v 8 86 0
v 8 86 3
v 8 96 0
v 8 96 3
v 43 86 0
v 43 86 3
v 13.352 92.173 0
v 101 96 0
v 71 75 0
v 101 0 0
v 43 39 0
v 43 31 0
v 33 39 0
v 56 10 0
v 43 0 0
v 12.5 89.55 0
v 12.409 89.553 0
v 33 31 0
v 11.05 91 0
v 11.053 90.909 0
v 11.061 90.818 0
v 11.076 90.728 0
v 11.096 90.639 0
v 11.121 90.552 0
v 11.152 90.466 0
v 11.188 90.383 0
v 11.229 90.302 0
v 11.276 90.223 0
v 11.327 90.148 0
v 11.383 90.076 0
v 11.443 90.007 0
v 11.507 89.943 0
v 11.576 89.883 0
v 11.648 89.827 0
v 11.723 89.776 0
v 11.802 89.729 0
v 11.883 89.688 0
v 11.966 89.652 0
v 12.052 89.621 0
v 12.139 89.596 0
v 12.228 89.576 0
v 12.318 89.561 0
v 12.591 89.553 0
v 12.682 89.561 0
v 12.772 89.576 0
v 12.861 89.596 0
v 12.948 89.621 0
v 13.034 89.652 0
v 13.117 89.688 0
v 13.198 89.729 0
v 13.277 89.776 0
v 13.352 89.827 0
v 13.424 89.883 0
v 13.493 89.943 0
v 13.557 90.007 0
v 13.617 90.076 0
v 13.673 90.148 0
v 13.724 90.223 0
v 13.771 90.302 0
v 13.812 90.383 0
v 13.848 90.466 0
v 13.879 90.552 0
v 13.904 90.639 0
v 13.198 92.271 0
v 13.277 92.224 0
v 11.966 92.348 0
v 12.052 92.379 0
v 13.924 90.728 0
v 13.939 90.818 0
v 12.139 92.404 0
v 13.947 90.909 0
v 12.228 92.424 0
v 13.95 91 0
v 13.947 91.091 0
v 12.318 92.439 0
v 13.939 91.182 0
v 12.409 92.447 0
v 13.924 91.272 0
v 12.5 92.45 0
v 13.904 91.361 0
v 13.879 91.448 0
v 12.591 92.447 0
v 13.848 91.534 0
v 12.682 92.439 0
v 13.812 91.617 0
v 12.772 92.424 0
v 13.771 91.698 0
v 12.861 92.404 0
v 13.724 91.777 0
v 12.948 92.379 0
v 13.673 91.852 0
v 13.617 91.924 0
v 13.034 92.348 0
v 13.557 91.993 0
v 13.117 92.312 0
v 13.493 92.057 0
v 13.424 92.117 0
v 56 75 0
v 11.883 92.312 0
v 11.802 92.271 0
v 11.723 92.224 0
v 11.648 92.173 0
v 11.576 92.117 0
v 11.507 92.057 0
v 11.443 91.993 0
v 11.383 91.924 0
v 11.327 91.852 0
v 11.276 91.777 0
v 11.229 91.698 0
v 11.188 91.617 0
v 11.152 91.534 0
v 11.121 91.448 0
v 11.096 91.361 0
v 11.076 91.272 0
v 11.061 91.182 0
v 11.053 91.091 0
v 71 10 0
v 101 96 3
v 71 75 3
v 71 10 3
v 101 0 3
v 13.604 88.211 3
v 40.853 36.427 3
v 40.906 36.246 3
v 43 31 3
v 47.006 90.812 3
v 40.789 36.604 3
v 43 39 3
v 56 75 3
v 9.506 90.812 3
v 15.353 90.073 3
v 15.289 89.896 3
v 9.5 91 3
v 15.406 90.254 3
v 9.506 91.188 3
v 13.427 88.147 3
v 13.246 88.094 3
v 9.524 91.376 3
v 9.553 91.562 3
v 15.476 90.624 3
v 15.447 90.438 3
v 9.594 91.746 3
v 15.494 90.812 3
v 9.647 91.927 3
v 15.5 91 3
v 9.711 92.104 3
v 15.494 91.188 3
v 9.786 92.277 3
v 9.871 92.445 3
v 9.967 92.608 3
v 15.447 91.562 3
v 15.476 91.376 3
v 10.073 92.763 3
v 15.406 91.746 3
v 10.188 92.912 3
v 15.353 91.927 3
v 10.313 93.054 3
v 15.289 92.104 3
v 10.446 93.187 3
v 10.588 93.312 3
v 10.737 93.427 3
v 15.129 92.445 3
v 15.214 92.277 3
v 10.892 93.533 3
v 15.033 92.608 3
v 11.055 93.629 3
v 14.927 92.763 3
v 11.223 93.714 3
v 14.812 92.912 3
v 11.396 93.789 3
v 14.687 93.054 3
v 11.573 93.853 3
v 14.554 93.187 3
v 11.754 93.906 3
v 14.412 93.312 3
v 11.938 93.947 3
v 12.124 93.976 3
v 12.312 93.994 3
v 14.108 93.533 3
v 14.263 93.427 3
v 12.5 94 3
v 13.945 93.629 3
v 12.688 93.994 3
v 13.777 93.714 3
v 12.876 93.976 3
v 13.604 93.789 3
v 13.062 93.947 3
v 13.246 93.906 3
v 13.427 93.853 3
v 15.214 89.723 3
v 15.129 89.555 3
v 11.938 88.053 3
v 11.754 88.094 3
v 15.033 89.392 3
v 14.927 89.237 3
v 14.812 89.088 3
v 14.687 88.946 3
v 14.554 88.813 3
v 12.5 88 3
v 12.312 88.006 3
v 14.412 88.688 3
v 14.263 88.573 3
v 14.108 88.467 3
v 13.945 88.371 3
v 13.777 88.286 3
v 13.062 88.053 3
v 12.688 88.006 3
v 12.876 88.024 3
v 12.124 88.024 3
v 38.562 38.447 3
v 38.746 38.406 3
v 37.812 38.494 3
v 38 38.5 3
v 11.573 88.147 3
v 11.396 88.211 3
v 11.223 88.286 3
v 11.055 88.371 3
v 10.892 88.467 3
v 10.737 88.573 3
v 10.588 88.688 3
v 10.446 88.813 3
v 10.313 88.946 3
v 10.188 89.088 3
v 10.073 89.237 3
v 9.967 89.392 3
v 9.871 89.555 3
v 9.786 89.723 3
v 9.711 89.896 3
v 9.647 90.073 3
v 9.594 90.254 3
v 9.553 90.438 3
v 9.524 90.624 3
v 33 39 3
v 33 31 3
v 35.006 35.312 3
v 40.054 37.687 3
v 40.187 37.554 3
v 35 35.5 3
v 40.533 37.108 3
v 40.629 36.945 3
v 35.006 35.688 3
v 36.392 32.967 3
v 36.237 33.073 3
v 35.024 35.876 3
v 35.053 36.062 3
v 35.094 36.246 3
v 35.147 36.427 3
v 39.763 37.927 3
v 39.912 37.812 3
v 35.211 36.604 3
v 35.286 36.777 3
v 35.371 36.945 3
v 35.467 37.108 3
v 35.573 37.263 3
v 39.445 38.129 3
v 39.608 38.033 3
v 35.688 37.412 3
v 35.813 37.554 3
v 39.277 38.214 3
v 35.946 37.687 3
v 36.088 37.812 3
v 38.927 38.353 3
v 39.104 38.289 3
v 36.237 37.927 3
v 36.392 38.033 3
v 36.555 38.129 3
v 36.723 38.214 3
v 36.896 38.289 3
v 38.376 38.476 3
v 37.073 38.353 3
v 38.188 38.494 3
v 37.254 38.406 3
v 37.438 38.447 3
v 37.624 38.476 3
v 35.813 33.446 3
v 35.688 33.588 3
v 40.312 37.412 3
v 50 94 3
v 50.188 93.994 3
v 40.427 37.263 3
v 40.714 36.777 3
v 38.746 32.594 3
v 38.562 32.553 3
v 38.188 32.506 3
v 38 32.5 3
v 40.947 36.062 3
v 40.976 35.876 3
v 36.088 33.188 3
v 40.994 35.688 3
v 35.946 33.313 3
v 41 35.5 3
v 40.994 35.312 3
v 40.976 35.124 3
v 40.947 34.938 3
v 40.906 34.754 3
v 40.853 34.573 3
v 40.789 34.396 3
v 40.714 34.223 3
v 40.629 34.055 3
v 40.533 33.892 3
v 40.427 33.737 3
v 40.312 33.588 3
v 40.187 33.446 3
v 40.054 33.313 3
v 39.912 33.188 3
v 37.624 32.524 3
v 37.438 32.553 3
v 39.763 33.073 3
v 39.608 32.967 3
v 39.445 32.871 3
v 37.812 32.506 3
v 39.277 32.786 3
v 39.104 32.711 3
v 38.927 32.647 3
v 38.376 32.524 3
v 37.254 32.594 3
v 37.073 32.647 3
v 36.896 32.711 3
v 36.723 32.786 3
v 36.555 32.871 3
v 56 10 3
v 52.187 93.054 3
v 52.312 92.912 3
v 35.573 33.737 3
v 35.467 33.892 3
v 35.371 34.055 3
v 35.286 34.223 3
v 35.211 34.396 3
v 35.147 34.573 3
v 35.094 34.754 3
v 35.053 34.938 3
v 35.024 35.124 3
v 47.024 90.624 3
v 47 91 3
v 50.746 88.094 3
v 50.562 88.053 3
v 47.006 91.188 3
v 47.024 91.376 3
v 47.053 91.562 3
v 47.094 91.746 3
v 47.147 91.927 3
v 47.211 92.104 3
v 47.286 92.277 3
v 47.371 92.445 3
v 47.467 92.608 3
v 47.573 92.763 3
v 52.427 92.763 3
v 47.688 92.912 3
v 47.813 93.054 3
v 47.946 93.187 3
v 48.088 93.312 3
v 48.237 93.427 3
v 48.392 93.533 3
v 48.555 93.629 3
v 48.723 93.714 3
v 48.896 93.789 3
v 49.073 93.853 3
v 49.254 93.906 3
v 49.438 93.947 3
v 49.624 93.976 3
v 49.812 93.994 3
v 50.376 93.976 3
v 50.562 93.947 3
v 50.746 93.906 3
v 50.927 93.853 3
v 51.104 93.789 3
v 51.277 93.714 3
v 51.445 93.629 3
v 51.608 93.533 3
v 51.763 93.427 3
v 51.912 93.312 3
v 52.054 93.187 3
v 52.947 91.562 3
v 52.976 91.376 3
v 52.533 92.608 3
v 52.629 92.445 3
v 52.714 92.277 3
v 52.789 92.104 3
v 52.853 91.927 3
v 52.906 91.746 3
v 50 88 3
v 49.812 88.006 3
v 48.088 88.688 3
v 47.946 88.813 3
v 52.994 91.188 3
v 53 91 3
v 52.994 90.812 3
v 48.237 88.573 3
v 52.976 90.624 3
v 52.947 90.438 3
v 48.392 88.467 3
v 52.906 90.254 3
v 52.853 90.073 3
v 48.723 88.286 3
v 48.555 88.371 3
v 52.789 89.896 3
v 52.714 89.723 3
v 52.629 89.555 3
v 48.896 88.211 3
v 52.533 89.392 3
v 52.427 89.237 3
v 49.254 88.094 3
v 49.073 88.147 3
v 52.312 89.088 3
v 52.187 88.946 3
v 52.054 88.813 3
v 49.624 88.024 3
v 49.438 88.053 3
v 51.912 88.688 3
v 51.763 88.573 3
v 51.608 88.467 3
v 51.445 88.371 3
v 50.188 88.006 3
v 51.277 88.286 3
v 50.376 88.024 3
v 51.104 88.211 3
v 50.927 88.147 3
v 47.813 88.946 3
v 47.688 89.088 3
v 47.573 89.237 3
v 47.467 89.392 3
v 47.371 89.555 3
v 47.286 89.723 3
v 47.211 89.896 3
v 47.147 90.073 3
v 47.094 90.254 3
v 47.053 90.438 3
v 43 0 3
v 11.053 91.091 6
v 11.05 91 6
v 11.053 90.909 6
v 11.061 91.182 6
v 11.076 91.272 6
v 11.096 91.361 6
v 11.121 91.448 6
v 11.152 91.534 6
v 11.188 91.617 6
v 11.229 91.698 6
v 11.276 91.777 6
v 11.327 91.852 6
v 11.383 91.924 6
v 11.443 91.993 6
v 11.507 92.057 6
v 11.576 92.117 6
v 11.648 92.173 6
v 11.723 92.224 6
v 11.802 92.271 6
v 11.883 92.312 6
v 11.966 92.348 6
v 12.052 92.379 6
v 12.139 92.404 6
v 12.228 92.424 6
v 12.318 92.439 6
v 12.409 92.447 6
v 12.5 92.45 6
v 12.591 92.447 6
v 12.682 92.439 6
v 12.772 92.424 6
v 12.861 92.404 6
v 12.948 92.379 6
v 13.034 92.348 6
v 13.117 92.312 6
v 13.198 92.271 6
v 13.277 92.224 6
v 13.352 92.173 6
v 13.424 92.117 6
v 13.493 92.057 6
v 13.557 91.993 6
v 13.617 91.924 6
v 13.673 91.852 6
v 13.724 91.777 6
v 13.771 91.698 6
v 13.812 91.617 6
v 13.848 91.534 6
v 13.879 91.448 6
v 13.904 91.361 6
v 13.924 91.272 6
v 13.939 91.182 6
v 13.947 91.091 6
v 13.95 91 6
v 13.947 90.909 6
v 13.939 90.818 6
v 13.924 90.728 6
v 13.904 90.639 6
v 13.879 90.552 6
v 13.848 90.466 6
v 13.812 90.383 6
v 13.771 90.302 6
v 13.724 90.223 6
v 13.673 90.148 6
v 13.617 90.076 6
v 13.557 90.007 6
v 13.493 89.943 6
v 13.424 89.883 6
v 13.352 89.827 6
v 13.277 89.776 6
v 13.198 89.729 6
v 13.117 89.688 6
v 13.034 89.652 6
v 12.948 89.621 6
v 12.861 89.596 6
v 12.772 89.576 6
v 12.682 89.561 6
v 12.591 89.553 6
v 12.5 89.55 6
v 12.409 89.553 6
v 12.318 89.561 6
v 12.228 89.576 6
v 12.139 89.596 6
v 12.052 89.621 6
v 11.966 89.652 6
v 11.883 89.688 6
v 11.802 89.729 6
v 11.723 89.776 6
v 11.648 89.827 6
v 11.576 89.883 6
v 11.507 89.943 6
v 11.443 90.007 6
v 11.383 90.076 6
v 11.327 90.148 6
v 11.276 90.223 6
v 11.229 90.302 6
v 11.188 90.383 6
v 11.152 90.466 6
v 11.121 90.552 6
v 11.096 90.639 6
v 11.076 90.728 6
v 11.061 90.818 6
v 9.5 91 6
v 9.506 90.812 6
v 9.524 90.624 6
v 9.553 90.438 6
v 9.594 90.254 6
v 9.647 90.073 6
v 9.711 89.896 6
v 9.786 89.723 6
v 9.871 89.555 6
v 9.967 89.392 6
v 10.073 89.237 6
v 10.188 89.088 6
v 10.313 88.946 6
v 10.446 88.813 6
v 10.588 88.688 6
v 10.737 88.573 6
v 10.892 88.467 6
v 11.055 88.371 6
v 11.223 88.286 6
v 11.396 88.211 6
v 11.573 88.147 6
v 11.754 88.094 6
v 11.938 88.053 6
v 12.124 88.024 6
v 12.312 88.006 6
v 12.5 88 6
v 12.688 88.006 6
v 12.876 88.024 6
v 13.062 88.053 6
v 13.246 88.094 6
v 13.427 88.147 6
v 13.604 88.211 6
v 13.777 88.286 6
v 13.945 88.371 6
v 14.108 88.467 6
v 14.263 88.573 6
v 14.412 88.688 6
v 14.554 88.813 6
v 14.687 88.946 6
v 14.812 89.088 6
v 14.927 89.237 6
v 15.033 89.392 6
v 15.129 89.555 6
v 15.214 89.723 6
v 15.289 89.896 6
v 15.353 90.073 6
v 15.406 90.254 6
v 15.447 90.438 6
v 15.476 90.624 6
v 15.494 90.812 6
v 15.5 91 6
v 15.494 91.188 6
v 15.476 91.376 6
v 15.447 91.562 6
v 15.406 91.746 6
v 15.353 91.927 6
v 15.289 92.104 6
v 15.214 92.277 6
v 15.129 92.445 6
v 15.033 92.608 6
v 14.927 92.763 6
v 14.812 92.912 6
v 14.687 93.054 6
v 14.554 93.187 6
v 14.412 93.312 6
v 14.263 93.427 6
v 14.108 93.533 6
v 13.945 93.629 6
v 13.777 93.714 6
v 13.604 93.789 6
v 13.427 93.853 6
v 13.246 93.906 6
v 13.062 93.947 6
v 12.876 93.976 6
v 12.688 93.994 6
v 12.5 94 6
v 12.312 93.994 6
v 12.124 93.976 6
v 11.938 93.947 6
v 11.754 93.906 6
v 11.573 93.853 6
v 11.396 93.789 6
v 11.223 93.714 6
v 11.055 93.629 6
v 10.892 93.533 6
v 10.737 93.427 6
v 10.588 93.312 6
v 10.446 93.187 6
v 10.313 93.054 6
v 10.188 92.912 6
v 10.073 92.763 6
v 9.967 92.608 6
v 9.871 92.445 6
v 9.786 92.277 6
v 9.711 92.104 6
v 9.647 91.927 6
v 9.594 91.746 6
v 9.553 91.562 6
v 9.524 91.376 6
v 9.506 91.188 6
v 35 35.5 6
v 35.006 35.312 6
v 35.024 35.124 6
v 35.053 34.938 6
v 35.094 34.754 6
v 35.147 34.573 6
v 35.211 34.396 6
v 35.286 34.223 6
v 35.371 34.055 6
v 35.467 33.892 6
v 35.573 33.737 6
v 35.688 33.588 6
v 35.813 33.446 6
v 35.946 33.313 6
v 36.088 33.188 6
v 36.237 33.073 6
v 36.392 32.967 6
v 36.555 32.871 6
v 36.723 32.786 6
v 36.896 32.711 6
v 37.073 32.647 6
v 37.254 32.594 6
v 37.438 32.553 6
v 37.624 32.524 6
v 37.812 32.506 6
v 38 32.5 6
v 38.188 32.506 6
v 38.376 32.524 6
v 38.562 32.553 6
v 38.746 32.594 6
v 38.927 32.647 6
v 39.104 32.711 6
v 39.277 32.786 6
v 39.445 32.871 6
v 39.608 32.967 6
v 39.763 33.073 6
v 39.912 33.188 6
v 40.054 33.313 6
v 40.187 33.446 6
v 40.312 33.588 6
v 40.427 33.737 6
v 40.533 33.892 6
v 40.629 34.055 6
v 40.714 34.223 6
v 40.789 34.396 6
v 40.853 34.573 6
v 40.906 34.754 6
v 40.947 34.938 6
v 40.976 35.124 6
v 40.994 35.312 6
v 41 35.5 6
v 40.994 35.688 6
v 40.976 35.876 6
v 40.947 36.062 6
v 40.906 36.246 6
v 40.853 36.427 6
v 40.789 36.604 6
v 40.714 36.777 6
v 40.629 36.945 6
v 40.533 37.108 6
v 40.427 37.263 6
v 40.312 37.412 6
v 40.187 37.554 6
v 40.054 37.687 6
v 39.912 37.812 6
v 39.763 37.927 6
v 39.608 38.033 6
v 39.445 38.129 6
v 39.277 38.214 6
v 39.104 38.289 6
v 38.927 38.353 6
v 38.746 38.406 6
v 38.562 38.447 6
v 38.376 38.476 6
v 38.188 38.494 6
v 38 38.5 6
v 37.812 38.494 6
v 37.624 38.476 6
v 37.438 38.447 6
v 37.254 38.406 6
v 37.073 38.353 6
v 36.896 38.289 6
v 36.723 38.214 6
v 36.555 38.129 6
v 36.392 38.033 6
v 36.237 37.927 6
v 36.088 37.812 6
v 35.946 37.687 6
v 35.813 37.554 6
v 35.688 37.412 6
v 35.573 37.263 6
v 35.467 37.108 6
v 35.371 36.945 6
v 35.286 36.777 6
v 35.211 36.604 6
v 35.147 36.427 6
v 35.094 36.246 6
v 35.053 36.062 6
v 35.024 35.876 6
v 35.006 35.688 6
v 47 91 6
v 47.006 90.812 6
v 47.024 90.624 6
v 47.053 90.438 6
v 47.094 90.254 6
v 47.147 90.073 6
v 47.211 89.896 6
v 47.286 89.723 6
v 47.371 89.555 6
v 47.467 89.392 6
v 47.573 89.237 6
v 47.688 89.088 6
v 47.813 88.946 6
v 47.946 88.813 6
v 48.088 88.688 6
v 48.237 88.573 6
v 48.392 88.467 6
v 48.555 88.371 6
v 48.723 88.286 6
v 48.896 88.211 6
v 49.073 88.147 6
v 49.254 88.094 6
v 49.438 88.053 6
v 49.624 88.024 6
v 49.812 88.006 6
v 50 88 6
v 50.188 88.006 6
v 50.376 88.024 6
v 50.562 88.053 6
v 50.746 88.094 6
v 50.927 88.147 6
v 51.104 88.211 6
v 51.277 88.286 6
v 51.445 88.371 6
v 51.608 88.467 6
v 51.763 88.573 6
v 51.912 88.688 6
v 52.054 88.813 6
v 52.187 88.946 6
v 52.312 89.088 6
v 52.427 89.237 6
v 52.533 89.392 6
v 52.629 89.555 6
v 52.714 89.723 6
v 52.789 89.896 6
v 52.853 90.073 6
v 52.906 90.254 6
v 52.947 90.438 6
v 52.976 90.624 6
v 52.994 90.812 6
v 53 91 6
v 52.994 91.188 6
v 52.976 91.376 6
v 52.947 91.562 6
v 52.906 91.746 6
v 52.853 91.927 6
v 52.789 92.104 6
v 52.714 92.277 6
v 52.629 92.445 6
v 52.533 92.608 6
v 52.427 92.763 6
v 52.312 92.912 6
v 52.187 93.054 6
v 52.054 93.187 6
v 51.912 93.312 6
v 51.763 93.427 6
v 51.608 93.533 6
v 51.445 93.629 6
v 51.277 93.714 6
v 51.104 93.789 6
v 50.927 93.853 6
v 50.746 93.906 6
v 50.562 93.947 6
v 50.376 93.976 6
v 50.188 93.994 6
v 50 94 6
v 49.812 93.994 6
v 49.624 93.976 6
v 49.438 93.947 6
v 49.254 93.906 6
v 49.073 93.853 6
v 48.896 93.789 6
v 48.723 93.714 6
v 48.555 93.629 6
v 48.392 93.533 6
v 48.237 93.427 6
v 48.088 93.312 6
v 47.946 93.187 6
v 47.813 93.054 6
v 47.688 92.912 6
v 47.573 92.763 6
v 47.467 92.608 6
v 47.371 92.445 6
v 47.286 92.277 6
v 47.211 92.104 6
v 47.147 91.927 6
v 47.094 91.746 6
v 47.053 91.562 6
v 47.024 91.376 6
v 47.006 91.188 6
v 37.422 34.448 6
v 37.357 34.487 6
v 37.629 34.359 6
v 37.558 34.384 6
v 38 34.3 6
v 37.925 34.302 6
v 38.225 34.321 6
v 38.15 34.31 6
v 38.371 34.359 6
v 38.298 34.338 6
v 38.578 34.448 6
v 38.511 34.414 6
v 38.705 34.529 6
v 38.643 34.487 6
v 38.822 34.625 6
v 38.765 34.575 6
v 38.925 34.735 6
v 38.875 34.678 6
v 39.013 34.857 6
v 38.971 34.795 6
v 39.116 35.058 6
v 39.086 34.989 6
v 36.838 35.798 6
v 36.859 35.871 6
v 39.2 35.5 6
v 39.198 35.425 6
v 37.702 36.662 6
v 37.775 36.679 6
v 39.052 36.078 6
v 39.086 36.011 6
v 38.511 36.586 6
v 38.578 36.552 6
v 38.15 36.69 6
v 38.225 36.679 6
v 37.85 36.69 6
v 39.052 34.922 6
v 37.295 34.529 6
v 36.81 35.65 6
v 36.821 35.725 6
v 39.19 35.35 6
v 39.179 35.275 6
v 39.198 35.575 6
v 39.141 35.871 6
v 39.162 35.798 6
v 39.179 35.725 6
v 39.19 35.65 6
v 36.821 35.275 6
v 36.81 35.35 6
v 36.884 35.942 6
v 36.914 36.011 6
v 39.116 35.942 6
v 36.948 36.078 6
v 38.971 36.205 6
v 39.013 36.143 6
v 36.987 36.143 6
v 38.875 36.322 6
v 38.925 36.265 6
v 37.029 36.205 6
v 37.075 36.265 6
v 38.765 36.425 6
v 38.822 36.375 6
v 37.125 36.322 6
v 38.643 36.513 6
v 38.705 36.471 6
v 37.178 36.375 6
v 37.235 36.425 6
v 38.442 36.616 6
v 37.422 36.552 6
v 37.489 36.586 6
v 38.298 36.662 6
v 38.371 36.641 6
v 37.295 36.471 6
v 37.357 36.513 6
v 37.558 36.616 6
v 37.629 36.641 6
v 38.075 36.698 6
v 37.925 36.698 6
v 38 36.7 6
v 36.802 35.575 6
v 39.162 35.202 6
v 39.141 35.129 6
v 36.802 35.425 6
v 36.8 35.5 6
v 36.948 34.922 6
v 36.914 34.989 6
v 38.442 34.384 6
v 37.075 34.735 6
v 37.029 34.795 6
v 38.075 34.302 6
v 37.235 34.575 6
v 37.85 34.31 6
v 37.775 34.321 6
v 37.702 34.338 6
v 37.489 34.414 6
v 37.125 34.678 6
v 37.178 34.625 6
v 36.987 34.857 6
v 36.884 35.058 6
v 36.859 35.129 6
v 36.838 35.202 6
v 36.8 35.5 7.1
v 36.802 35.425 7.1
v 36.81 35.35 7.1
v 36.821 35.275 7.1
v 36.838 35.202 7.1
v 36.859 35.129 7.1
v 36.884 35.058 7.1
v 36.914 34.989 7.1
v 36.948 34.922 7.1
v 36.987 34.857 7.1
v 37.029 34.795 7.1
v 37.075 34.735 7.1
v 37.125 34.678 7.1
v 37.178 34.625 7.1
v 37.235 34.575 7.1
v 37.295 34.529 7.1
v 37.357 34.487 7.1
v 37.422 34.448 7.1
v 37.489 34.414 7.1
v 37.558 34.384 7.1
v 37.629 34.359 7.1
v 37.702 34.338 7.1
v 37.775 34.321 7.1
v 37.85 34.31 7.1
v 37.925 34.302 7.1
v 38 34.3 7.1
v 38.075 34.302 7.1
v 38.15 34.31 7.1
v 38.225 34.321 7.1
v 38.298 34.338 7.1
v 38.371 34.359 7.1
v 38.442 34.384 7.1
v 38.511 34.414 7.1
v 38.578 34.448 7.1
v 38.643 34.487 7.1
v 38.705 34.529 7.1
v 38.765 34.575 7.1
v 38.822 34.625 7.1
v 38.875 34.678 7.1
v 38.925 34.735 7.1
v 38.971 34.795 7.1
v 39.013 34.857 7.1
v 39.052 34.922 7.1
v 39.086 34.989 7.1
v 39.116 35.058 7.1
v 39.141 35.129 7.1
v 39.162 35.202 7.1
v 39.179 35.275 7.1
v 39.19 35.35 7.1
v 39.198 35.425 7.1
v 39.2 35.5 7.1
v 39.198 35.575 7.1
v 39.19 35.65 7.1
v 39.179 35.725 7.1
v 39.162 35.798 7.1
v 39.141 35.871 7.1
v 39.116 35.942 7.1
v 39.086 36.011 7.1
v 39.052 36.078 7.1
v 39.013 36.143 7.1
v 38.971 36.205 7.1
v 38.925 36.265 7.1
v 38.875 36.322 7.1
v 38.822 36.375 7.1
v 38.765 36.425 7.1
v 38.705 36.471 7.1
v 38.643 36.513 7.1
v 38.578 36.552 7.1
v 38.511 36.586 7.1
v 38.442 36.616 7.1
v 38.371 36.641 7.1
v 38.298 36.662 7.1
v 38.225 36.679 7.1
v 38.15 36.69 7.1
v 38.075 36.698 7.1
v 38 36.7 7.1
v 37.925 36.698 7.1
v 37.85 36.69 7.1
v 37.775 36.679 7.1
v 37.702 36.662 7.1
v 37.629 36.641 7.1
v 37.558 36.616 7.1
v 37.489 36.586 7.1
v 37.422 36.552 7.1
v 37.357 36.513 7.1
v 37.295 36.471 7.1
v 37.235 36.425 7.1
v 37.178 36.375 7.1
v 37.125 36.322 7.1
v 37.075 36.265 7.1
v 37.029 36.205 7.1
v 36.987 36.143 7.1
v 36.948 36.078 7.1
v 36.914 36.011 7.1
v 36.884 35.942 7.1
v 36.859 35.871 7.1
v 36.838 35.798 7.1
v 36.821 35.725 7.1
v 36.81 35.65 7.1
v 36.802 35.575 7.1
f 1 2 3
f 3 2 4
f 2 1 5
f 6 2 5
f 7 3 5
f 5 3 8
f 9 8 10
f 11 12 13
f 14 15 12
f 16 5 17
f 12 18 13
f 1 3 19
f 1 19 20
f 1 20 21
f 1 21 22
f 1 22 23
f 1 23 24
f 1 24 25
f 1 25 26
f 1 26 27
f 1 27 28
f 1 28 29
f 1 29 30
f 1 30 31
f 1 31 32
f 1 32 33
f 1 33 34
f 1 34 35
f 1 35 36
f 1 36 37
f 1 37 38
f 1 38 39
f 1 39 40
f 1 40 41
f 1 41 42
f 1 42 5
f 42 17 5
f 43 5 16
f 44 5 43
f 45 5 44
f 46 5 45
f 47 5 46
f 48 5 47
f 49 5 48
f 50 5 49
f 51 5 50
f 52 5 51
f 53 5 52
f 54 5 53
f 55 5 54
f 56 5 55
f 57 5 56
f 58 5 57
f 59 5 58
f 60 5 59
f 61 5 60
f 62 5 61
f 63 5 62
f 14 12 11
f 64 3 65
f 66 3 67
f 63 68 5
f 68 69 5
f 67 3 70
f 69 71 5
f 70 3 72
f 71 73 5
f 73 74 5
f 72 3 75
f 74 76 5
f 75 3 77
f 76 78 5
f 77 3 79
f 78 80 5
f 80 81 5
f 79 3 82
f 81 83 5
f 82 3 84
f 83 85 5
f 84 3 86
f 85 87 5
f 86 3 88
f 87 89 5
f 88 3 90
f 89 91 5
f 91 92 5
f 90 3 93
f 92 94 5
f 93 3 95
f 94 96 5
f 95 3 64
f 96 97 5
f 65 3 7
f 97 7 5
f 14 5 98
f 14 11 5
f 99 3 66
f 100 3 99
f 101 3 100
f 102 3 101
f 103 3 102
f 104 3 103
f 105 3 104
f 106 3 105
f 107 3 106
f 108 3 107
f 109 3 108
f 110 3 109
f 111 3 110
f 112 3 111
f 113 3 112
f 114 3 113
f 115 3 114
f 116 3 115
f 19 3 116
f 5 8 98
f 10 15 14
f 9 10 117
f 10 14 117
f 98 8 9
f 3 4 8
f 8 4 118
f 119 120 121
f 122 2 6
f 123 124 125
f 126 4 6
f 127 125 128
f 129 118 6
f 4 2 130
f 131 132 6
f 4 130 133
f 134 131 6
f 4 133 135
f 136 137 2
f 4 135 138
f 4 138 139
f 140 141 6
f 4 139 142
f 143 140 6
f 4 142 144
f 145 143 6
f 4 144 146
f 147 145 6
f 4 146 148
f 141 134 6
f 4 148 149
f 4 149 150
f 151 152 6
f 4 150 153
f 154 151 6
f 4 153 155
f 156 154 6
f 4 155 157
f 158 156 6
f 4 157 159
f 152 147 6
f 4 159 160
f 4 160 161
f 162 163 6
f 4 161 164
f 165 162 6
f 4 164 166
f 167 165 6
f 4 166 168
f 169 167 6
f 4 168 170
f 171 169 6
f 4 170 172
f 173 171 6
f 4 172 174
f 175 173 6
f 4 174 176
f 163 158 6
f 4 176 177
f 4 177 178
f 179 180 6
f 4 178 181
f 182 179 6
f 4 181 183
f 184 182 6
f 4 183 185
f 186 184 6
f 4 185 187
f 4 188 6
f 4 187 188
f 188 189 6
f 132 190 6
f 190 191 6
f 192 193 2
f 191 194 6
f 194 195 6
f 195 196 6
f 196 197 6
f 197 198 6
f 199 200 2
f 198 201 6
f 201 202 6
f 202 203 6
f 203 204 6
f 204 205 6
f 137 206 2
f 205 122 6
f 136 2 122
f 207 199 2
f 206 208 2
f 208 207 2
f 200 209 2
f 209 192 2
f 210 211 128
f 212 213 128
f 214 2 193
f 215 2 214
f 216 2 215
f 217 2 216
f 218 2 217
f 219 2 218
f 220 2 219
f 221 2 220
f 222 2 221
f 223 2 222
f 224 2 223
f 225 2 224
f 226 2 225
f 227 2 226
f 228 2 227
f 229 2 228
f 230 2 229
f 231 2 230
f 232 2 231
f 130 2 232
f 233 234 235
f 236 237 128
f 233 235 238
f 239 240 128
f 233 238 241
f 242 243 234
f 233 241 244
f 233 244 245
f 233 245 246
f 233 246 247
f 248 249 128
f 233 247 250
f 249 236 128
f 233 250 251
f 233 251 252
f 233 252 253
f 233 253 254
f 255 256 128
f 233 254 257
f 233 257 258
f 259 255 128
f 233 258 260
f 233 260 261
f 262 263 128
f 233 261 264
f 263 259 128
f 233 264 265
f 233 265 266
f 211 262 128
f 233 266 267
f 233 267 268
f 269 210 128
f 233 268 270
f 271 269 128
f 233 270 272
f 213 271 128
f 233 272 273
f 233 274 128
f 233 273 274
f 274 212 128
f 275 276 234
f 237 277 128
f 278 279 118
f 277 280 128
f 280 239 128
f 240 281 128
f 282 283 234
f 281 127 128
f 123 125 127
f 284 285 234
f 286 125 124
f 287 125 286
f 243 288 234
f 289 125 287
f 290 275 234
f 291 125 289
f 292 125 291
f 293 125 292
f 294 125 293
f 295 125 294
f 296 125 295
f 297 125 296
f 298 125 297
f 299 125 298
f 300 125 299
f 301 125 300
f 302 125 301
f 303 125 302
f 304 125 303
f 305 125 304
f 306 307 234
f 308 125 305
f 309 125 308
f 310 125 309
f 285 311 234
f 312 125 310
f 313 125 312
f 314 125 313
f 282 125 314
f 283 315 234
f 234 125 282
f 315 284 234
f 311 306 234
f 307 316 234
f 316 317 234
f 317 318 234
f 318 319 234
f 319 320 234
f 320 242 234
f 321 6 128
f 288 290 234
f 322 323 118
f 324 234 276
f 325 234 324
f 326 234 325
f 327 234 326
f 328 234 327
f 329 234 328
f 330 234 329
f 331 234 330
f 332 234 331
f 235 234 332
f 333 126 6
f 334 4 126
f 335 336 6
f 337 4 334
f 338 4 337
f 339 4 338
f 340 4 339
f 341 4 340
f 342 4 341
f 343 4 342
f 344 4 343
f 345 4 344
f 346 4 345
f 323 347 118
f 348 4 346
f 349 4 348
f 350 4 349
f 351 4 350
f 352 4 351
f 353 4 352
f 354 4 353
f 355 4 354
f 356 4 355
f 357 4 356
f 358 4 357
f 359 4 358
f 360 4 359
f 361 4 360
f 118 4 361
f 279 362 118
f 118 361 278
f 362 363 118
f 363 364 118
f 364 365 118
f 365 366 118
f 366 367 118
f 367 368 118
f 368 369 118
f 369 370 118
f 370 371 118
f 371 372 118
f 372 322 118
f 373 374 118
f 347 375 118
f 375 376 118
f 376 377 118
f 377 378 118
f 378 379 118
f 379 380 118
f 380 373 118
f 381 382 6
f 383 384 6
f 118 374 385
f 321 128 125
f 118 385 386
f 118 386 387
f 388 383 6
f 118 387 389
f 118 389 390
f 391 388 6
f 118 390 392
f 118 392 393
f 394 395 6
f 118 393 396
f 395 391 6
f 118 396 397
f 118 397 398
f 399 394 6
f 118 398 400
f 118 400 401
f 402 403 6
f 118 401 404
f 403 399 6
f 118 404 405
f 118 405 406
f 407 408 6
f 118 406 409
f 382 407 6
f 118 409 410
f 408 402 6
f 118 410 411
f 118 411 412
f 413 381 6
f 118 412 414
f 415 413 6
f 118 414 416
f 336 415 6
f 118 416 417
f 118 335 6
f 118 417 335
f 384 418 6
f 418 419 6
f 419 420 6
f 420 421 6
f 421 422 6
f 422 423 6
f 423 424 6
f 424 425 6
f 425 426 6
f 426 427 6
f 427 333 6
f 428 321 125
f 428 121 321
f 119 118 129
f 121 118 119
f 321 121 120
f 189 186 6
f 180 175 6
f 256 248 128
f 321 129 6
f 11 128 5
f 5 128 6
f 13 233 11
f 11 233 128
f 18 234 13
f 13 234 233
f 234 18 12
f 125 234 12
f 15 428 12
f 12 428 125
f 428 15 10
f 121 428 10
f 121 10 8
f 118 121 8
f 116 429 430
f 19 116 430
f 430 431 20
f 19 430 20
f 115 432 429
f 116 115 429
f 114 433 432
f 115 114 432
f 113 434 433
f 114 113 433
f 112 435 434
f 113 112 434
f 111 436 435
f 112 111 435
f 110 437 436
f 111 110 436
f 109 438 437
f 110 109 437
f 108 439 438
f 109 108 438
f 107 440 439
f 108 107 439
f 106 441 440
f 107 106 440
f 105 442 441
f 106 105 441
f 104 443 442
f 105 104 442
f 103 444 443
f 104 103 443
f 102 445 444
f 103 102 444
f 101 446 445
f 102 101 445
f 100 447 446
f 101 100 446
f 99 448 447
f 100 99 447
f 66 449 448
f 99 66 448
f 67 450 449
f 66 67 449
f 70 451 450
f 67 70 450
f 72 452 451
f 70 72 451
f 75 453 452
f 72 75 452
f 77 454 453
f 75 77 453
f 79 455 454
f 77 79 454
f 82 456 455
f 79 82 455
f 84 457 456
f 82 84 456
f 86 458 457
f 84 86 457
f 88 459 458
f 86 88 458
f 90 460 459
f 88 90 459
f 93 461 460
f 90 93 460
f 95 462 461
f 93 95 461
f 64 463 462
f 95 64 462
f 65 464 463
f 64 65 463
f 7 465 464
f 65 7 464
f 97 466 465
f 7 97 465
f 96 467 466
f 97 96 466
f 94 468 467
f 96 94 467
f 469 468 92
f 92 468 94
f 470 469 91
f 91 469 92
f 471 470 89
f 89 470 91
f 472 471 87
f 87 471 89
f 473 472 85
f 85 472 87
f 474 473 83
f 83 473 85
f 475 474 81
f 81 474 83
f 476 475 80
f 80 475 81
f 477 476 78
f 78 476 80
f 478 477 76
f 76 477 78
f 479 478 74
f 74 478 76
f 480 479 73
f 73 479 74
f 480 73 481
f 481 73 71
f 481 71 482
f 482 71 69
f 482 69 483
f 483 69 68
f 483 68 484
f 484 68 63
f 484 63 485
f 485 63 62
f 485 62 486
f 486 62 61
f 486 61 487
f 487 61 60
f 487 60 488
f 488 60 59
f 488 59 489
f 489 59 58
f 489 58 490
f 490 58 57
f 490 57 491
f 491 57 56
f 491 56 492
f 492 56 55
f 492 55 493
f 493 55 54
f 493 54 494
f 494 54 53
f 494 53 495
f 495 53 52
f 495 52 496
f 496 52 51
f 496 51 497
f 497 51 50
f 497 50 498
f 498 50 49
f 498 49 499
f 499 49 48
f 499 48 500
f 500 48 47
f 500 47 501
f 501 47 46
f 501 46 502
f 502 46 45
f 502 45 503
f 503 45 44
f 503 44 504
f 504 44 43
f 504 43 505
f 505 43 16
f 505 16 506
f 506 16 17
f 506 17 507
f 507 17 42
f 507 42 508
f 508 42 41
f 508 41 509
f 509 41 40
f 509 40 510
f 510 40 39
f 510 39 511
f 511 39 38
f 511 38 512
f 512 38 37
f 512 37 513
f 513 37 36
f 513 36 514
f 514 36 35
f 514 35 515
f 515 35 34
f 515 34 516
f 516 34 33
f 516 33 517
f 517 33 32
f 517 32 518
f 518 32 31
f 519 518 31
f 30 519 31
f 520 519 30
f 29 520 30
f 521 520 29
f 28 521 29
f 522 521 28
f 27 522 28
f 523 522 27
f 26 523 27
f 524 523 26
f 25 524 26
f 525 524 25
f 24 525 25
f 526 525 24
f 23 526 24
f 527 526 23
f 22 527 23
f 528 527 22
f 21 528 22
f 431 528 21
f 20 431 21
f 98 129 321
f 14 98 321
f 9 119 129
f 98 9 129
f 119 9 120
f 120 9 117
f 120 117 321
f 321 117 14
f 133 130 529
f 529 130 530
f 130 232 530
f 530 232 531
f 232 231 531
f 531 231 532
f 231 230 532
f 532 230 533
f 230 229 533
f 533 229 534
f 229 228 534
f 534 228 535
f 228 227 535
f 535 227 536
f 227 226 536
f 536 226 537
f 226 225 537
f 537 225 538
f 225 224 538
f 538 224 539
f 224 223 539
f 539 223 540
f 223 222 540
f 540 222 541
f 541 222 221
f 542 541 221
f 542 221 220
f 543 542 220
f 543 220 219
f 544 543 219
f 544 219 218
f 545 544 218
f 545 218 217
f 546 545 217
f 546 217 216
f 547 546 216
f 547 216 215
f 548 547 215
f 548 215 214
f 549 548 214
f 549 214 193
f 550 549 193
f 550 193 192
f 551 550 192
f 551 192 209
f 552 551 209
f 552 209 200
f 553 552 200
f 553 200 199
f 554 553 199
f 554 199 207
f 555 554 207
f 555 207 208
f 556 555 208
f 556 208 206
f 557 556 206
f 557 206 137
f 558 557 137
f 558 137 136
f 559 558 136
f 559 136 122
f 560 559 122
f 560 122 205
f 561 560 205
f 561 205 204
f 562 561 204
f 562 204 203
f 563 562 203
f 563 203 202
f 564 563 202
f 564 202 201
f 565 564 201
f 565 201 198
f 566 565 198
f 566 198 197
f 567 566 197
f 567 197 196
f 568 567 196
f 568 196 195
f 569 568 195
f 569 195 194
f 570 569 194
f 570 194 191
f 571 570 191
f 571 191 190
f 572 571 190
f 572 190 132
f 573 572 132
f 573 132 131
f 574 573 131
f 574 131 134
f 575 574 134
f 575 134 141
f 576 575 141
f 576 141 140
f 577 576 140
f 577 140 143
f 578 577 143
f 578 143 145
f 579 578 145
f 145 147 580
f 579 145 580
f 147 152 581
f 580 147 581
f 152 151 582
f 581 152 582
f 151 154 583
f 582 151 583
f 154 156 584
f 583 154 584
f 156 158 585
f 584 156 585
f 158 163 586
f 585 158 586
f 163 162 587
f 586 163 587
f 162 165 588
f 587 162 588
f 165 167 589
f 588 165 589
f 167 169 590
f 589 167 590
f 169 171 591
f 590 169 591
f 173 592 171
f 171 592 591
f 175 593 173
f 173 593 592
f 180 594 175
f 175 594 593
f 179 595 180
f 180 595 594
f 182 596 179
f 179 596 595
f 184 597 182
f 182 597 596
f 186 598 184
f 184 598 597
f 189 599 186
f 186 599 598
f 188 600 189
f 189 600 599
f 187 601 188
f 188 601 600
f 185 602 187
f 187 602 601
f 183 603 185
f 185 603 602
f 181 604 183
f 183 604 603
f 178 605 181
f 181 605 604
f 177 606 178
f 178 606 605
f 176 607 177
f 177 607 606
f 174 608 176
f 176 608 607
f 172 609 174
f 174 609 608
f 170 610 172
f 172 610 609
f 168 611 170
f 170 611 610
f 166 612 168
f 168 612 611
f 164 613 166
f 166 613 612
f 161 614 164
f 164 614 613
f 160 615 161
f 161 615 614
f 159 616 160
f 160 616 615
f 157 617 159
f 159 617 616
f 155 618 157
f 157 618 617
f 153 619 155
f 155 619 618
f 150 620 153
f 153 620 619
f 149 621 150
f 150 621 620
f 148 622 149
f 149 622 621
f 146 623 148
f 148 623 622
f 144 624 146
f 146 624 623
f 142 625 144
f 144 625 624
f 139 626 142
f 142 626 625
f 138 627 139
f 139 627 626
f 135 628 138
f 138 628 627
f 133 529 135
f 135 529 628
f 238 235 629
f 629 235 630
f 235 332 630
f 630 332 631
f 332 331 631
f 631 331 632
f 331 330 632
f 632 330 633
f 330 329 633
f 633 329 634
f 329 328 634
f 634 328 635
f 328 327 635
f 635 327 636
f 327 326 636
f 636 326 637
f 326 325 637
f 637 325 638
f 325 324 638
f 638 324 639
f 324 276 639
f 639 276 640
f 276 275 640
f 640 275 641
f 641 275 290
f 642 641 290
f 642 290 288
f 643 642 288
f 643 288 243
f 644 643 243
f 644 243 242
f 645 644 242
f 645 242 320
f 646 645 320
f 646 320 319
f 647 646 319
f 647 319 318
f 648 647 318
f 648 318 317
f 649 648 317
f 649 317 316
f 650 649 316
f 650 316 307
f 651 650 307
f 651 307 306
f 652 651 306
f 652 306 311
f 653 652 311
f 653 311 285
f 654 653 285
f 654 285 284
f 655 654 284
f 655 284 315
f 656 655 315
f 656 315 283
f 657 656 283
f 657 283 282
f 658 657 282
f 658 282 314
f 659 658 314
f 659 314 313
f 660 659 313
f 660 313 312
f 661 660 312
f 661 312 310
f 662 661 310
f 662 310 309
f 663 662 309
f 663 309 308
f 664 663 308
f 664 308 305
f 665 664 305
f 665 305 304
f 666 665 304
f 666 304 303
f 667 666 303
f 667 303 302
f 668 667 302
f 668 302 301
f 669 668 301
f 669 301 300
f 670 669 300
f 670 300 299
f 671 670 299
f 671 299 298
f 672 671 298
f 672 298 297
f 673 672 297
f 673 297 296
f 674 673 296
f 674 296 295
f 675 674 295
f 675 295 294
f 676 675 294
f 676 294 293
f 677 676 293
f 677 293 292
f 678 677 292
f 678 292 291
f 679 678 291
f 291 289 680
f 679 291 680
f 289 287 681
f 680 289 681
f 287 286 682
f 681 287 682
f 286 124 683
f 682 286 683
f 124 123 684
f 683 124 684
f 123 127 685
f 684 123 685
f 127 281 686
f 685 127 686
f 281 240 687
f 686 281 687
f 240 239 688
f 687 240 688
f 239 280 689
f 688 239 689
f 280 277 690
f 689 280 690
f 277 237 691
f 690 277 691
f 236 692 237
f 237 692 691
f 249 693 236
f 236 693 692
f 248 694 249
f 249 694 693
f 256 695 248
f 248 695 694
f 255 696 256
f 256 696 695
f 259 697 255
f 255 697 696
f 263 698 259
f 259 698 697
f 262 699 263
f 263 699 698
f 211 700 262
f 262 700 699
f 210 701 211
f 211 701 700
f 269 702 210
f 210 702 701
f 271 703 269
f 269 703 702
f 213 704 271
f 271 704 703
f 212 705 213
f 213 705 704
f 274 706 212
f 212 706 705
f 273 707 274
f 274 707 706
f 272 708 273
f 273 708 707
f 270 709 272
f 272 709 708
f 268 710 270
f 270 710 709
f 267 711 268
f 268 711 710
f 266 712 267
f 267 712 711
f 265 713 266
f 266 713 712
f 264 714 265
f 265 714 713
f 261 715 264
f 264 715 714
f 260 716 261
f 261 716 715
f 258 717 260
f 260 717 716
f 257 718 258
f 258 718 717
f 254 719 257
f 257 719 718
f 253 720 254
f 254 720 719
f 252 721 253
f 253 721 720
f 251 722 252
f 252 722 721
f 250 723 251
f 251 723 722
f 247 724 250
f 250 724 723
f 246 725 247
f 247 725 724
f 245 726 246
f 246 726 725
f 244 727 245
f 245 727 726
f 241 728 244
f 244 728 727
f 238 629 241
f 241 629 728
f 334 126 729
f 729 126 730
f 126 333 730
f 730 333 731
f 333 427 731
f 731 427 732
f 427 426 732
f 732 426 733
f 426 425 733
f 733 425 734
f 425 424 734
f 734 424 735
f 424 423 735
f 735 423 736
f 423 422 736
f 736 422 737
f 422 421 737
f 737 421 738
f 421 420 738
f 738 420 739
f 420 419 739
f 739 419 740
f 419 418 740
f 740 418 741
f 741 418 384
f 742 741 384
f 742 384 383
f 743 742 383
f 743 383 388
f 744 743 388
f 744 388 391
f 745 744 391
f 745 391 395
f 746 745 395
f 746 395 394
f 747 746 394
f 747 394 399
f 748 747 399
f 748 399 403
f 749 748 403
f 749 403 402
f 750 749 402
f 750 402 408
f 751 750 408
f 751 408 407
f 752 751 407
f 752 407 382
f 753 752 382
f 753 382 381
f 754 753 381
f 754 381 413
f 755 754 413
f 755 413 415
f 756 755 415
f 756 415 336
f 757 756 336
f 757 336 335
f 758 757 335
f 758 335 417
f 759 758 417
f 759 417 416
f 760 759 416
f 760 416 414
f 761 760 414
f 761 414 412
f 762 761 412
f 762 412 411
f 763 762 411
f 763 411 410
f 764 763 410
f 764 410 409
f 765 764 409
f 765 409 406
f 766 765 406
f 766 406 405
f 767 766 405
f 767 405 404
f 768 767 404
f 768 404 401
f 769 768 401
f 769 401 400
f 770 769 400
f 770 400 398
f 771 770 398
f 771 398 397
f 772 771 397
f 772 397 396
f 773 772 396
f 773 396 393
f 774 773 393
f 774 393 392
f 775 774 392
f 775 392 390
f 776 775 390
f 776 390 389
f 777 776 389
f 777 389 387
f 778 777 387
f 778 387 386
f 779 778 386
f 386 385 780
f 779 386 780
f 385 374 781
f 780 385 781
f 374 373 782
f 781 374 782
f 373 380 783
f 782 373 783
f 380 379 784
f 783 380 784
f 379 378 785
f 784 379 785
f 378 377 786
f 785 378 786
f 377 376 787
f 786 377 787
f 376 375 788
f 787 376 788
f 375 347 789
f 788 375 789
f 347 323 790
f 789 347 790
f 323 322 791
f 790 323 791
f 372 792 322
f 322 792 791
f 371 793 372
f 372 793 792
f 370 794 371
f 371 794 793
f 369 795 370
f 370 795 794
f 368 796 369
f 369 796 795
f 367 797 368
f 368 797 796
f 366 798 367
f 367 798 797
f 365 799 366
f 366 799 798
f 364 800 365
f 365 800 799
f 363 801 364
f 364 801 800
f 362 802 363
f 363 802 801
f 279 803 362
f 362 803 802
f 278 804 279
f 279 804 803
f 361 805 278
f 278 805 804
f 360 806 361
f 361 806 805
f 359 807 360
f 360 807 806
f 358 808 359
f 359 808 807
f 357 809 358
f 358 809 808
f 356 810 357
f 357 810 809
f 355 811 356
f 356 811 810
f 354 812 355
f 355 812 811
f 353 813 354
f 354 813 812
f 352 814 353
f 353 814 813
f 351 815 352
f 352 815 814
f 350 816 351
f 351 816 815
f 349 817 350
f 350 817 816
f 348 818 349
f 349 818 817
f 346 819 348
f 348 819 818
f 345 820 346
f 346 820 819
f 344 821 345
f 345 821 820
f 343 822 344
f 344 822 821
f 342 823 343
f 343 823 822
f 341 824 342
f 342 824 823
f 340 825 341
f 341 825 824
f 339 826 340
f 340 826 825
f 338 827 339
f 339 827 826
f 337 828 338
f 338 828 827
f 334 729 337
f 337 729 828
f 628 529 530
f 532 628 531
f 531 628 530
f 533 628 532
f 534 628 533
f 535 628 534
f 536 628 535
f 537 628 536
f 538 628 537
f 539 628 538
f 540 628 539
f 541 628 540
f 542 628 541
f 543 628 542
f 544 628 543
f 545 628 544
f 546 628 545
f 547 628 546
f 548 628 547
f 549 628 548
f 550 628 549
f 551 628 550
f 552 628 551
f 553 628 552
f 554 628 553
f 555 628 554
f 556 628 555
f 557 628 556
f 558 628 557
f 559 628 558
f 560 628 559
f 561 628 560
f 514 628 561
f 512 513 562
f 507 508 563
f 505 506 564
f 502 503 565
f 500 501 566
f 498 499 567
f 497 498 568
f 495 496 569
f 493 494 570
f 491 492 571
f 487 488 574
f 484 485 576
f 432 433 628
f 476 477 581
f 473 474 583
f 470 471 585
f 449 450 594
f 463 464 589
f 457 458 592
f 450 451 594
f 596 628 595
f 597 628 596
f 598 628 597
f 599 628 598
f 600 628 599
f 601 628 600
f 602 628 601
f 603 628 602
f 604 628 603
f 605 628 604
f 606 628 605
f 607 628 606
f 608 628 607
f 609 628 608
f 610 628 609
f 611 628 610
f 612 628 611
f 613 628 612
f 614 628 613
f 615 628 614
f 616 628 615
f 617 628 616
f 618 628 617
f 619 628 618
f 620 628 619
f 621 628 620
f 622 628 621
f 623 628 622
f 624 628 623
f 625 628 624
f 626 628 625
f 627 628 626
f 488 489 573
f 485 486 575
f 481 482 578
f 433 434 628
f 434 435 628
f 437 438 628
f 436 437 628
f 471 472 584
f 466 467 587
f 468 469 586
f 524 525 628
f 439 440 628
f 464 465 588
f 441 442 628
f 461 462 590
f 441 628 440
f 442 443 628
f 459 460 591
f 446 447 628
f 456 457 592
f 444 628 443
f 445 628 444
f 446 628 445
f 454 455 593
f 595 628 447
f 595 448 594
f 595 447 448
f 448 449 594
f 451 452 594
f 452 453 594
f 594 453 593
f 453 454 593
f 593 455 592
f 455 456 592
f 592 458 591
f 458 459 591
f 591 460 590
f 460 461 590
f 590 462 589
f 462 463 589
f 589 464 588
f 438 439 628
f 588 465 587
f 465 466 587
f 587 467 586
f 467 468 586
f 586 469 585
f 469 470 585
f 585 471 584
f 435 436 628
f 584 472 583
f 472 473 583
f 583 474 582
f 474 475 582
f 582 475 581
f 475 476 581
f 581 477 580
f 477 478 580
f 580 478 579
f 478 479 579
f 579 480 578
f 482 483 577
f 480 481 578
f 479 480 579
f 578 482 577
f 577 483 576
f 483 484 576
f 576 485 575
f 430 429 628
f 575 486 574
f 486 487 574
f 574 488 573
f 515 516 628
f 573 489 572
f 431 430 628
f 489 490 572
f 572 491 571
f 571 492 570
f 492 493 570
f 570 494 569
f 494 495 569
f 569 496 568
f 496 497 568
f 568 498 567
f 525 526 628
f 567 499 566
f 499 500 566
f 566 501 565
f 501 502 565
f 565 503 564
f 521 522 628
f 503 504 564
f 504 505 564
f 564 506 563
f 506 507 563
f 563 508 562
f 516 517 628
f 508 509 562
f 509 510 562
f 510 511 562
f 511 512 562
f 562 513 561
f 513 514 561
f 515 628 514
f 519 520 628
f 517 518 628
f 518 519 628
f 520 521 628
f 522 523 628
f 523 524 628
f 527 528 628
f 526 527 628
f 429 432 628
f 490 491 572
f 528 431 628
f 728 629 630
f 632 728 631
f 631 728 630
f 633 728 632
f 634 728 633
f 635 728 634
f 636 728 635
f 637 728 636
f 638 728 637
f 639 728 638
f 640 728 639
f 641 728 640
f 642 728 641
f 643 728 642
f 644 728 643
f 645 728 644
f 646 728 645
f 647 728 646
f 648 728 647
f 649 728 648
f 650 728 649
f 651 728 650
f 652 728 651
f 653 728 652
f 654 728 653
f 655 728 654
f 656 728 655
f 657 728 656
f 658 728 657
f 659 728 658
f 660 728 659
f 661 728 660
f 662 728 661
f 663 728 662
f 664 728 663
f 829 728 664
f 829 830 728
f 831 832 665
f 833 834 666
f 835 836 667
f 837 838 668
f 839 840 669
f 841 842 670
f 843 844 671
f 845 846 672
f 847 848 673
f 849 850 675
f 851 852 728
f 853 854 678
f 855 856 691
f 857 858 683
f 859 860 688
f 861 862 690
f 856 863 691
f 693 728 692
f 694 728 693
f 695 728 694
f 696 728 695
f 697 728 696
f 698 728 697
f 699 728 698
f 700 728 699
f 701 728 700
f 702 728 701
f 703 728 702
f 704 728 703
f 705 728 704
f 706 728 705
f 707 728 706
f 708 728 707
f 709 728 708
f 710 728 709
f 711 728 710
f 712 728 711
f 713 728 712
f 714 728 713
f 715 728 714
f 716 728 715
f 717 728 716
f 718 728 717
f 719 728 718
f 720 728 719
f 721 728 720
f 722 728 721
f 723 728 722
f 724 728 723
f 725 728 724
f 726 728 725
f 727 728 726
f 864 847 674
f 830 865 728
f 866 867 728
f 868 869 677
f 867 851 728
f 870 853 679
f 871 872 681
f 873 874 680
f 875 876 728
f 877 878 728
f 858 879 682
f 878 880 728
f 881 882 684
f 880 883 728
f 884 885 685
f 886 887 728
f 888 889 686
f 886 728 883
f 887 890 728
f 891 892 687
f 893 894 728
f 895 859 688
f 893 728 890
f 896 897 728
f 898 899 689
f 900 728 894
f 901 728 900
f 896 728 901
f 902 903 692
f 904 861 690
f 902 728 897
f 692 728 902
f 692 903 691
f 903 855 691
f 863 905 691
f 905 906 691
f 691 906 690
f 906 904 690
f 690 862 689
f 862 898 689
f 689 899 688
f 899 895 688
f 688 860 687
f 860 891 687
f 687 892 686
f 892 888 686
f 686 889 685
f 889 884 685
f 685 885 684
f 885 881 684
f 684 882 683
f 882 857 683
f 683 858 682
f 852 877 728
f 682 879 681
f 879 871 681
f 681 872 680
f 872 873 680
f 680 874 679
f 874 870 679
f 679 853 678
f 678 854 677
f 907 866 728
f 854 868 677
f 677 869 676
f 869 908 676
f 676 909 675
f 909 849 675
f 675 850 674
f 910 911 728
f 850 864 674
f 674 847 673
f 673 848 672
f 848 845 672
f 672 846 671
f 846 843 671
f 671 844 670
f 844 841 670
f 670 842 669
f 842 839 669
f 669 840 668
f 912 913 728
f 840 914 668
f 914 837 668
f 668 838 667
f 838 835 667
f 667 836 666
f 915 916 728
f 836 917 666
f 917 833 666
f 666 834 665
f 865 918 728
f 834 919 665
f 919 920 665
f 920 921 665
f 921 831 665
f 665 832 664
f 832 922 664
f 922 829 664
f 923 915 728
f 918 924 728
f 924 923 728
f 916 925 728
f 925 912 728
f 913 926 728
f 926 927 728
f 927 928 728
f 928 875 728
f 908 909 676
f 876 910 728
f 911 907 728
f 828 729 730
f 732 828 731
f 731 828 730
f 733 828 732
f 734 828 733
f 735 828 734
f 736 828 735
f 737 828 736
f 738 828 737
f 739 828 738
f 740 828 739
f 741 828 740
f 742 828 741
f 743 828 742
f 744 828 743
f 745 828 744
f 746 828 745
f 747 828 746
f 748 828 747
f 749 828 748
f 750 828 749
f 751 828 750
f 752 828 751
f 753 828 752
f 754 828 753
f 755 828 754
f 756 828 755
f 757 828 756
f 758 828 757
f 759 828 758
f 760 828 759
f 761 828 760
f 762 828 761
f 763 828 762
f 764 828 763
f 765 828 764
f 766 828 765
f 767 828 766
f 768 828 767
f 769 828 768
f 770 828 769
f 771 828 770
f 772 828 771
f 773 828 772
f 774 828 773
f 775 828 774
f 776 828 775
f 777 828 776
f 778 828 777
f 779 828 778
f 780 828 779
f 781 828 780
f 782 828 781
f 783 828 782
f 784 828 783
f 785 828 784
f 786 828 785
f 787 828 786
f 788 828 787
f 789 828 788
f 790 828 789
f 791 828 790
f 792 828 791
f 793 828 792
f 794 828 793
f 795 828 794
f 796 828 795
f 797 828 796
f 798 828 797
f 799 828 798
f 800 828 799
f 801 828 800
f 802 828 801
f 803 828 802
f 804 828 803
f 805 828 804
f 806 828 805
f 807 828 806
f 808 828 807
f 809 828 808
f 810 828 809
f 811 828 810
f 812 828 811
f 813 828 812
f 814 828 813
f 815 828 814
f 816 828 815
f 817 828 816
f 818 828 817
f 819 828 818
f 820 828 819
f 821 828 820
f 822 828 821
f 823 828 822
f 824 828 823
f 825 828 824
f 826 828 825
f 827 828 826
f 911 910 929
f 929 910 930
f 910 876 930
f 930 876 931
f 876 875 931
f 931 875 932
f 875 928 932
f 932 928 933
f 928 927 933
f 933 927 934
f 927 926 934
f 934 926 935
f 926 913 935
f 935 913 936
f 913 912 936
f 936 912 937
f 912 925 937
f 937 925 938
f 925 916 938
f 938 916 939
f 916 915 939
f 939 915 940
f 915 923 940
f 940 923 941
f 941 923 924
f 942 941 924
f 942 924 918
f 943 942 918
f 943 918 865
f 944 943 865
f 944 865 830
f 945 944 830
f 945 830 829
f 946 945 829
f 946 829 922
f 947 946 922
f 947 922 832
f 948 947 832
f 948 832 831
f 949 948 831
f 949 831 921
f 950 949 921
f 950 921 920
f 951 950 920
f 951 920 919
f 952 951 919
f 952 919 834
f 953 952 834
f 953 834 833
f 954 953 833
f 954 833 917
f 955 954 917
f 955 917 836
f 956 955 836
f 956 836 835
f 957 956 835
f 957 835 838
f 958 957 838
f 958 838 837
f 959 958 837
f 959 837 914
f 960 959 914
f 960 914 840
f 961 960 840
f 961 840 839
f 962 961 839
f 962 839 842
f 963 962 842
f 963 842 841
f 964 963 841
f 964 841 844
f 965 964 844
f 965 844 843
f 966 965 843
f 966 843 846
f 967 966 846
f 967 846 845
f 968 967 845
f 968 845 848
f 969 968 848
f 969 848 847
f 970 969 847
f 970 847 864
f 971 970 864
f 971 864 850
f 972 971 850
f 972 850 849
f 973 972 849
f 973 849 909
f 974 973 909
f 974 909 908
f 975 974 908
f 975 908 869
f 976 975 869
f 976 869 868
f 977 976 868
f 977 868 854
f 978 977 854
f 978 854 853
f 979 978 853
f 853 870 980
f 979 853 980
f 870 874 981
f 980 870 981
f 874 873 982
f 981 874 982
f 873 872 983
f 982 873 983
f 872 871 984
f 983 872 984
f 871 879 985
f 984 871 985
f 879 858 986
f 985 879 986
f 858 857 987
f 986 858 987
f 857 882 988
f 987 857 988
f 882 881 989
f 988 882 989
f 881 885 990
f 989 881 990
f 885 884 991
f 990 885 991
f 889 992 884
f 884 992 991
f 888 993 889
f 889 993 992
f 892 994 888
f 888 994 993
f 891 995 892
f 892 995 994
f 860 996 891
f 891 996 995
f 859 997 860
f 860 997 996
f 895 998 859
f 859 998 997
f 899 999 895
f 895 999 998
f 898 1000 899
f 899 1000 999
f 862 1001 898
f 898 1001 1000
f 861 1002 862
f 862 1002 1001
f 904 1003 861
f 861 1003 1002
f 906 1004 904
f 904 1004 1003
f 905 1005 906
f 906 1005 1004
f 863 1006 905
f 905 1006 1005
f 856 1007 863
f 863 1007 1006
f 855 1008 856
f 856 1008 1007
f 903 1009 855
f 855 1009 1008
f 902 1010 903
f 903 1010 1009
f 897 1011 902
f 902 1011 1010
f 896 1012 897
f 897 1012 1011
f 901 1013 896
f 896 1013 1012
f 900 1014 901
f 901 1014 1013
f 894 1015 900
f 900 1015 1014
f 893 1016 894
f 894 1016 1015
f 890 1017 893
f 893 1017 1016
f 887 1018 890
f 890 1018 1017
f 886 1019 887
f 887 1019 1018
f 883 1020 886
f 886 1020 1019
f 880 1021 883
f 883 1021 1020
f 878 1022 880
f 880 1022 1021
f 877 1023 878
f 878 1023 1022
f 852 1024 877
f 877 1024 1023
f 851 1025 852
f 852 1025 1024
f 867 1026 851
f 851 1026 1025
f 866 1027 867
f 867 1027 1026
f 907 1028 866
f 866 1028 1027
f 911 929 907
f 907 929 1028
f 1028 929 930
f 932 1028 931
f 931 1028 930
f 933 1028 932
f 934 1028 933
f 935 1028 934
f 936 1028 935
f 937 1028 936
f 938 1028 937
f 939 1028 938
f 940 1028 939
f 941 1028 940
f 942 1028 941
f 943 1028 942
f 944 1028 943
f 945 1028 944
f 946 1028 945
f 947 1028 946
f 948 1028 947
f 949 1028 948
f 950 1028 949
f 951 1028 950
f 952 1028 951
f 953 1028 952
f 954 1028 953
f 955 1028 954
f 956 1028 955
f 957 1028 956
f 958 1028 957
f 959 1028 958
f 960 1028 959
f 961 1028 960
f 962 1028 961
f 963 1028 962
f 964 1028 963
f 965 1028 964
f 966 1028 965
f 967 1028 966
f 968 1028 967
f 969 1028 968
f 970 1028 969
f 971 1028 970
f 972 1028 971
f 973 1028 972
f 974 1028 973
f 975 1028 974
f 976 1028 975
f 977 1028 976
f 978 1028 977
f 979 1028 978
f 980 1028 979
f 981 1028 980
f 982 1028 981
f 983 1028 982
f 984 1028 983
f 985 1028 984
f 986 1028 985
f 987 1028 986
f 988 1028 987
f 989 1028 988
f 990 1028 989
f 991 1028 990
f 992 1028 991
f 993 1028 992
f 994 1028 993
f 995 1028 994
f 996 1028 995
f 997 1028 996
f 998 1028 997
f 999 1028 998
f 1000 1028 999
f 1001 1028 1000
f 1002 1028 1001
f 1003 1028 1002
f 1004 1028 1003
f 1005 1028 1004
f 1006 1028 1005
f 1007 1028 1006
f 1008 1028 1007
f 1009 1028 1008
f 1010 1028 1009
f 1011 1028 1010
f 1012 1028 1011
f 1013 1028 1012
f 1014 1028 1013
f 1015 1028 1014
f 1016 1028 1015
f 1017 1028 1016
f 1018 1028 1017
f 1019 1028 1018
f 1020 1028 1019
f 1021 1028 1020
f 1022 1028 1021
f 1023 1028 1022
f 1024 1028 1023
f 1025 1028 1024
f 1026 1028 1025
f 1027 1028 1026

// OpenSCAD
// file: rasppi1.scad
$fn=100;

module RP1_support(){

	difference(){
		color("green") cube([56, 86, 1.6]);
		translate([56-18, 25.5, -0.1]) cylinder(r1=2.9/2, r2=2.9/2, h=1.8);
		translate([12.5, 81, -0.1]) cylinder(r1=2.9/2, r2=2.9/2, h=1.8);
	}
}

module RP1_connectors(){
	color("yellow") translate([-6.5, 41, 1.6]) cube([20,10, 13]); 
	color("blue") translate([-4, 86-14.6-12, 1.6]) cube([15, 12, 10]);
	color("grey") translate([19, 86-10, 1.6]) cube([13.5, 18, 16]);
	color("grey") translate([56-18, 86-20, 1.6]) cube([16, 22, 14]);
}

module RaspPiV1(){

	RP1_support();
	RP1_connectors();
}
// main file
include <rasppi1.scad>;

module MP4_RP1_Support(){
	difference(){
		union(){
			difference(){
				union(){
					translate([56-13, 0, 0]) cube([58, 96, 3]);
					translate([56-23, 31, 0]) cube([22, 8, 3]);
					translate([8, 86, 0]) cube([48, 10, 3]);
				}
				translate([56, 10, -0.1]) cube([15, 65, 3.2]);
			}
			translate([56-18, 35.5, 0.1]) cylinder(r1=6/2,r2=6/2,h=5.9);
			translate([12.5, 96-5, 0.1]) cylinder(r1=6/2,r2=6/2,h=5.9);
			translate([56-6, 96-5, 0.1]) cylinder(r1=6/2,r2=6/2,h=5.9);
			translate([56-18, 35.5, 0.1]) cylinder(r1=2.4/2,r2=2.4/2,h=7);
		}
		translate([12.5, 96-5, -0.1]) cylinder(r1=2.9/2,r2=2.9/2,h=6.3);
	}
}


MP4_RP1_Support();
translate([0, 10, 8]) %RaspPiV1();
